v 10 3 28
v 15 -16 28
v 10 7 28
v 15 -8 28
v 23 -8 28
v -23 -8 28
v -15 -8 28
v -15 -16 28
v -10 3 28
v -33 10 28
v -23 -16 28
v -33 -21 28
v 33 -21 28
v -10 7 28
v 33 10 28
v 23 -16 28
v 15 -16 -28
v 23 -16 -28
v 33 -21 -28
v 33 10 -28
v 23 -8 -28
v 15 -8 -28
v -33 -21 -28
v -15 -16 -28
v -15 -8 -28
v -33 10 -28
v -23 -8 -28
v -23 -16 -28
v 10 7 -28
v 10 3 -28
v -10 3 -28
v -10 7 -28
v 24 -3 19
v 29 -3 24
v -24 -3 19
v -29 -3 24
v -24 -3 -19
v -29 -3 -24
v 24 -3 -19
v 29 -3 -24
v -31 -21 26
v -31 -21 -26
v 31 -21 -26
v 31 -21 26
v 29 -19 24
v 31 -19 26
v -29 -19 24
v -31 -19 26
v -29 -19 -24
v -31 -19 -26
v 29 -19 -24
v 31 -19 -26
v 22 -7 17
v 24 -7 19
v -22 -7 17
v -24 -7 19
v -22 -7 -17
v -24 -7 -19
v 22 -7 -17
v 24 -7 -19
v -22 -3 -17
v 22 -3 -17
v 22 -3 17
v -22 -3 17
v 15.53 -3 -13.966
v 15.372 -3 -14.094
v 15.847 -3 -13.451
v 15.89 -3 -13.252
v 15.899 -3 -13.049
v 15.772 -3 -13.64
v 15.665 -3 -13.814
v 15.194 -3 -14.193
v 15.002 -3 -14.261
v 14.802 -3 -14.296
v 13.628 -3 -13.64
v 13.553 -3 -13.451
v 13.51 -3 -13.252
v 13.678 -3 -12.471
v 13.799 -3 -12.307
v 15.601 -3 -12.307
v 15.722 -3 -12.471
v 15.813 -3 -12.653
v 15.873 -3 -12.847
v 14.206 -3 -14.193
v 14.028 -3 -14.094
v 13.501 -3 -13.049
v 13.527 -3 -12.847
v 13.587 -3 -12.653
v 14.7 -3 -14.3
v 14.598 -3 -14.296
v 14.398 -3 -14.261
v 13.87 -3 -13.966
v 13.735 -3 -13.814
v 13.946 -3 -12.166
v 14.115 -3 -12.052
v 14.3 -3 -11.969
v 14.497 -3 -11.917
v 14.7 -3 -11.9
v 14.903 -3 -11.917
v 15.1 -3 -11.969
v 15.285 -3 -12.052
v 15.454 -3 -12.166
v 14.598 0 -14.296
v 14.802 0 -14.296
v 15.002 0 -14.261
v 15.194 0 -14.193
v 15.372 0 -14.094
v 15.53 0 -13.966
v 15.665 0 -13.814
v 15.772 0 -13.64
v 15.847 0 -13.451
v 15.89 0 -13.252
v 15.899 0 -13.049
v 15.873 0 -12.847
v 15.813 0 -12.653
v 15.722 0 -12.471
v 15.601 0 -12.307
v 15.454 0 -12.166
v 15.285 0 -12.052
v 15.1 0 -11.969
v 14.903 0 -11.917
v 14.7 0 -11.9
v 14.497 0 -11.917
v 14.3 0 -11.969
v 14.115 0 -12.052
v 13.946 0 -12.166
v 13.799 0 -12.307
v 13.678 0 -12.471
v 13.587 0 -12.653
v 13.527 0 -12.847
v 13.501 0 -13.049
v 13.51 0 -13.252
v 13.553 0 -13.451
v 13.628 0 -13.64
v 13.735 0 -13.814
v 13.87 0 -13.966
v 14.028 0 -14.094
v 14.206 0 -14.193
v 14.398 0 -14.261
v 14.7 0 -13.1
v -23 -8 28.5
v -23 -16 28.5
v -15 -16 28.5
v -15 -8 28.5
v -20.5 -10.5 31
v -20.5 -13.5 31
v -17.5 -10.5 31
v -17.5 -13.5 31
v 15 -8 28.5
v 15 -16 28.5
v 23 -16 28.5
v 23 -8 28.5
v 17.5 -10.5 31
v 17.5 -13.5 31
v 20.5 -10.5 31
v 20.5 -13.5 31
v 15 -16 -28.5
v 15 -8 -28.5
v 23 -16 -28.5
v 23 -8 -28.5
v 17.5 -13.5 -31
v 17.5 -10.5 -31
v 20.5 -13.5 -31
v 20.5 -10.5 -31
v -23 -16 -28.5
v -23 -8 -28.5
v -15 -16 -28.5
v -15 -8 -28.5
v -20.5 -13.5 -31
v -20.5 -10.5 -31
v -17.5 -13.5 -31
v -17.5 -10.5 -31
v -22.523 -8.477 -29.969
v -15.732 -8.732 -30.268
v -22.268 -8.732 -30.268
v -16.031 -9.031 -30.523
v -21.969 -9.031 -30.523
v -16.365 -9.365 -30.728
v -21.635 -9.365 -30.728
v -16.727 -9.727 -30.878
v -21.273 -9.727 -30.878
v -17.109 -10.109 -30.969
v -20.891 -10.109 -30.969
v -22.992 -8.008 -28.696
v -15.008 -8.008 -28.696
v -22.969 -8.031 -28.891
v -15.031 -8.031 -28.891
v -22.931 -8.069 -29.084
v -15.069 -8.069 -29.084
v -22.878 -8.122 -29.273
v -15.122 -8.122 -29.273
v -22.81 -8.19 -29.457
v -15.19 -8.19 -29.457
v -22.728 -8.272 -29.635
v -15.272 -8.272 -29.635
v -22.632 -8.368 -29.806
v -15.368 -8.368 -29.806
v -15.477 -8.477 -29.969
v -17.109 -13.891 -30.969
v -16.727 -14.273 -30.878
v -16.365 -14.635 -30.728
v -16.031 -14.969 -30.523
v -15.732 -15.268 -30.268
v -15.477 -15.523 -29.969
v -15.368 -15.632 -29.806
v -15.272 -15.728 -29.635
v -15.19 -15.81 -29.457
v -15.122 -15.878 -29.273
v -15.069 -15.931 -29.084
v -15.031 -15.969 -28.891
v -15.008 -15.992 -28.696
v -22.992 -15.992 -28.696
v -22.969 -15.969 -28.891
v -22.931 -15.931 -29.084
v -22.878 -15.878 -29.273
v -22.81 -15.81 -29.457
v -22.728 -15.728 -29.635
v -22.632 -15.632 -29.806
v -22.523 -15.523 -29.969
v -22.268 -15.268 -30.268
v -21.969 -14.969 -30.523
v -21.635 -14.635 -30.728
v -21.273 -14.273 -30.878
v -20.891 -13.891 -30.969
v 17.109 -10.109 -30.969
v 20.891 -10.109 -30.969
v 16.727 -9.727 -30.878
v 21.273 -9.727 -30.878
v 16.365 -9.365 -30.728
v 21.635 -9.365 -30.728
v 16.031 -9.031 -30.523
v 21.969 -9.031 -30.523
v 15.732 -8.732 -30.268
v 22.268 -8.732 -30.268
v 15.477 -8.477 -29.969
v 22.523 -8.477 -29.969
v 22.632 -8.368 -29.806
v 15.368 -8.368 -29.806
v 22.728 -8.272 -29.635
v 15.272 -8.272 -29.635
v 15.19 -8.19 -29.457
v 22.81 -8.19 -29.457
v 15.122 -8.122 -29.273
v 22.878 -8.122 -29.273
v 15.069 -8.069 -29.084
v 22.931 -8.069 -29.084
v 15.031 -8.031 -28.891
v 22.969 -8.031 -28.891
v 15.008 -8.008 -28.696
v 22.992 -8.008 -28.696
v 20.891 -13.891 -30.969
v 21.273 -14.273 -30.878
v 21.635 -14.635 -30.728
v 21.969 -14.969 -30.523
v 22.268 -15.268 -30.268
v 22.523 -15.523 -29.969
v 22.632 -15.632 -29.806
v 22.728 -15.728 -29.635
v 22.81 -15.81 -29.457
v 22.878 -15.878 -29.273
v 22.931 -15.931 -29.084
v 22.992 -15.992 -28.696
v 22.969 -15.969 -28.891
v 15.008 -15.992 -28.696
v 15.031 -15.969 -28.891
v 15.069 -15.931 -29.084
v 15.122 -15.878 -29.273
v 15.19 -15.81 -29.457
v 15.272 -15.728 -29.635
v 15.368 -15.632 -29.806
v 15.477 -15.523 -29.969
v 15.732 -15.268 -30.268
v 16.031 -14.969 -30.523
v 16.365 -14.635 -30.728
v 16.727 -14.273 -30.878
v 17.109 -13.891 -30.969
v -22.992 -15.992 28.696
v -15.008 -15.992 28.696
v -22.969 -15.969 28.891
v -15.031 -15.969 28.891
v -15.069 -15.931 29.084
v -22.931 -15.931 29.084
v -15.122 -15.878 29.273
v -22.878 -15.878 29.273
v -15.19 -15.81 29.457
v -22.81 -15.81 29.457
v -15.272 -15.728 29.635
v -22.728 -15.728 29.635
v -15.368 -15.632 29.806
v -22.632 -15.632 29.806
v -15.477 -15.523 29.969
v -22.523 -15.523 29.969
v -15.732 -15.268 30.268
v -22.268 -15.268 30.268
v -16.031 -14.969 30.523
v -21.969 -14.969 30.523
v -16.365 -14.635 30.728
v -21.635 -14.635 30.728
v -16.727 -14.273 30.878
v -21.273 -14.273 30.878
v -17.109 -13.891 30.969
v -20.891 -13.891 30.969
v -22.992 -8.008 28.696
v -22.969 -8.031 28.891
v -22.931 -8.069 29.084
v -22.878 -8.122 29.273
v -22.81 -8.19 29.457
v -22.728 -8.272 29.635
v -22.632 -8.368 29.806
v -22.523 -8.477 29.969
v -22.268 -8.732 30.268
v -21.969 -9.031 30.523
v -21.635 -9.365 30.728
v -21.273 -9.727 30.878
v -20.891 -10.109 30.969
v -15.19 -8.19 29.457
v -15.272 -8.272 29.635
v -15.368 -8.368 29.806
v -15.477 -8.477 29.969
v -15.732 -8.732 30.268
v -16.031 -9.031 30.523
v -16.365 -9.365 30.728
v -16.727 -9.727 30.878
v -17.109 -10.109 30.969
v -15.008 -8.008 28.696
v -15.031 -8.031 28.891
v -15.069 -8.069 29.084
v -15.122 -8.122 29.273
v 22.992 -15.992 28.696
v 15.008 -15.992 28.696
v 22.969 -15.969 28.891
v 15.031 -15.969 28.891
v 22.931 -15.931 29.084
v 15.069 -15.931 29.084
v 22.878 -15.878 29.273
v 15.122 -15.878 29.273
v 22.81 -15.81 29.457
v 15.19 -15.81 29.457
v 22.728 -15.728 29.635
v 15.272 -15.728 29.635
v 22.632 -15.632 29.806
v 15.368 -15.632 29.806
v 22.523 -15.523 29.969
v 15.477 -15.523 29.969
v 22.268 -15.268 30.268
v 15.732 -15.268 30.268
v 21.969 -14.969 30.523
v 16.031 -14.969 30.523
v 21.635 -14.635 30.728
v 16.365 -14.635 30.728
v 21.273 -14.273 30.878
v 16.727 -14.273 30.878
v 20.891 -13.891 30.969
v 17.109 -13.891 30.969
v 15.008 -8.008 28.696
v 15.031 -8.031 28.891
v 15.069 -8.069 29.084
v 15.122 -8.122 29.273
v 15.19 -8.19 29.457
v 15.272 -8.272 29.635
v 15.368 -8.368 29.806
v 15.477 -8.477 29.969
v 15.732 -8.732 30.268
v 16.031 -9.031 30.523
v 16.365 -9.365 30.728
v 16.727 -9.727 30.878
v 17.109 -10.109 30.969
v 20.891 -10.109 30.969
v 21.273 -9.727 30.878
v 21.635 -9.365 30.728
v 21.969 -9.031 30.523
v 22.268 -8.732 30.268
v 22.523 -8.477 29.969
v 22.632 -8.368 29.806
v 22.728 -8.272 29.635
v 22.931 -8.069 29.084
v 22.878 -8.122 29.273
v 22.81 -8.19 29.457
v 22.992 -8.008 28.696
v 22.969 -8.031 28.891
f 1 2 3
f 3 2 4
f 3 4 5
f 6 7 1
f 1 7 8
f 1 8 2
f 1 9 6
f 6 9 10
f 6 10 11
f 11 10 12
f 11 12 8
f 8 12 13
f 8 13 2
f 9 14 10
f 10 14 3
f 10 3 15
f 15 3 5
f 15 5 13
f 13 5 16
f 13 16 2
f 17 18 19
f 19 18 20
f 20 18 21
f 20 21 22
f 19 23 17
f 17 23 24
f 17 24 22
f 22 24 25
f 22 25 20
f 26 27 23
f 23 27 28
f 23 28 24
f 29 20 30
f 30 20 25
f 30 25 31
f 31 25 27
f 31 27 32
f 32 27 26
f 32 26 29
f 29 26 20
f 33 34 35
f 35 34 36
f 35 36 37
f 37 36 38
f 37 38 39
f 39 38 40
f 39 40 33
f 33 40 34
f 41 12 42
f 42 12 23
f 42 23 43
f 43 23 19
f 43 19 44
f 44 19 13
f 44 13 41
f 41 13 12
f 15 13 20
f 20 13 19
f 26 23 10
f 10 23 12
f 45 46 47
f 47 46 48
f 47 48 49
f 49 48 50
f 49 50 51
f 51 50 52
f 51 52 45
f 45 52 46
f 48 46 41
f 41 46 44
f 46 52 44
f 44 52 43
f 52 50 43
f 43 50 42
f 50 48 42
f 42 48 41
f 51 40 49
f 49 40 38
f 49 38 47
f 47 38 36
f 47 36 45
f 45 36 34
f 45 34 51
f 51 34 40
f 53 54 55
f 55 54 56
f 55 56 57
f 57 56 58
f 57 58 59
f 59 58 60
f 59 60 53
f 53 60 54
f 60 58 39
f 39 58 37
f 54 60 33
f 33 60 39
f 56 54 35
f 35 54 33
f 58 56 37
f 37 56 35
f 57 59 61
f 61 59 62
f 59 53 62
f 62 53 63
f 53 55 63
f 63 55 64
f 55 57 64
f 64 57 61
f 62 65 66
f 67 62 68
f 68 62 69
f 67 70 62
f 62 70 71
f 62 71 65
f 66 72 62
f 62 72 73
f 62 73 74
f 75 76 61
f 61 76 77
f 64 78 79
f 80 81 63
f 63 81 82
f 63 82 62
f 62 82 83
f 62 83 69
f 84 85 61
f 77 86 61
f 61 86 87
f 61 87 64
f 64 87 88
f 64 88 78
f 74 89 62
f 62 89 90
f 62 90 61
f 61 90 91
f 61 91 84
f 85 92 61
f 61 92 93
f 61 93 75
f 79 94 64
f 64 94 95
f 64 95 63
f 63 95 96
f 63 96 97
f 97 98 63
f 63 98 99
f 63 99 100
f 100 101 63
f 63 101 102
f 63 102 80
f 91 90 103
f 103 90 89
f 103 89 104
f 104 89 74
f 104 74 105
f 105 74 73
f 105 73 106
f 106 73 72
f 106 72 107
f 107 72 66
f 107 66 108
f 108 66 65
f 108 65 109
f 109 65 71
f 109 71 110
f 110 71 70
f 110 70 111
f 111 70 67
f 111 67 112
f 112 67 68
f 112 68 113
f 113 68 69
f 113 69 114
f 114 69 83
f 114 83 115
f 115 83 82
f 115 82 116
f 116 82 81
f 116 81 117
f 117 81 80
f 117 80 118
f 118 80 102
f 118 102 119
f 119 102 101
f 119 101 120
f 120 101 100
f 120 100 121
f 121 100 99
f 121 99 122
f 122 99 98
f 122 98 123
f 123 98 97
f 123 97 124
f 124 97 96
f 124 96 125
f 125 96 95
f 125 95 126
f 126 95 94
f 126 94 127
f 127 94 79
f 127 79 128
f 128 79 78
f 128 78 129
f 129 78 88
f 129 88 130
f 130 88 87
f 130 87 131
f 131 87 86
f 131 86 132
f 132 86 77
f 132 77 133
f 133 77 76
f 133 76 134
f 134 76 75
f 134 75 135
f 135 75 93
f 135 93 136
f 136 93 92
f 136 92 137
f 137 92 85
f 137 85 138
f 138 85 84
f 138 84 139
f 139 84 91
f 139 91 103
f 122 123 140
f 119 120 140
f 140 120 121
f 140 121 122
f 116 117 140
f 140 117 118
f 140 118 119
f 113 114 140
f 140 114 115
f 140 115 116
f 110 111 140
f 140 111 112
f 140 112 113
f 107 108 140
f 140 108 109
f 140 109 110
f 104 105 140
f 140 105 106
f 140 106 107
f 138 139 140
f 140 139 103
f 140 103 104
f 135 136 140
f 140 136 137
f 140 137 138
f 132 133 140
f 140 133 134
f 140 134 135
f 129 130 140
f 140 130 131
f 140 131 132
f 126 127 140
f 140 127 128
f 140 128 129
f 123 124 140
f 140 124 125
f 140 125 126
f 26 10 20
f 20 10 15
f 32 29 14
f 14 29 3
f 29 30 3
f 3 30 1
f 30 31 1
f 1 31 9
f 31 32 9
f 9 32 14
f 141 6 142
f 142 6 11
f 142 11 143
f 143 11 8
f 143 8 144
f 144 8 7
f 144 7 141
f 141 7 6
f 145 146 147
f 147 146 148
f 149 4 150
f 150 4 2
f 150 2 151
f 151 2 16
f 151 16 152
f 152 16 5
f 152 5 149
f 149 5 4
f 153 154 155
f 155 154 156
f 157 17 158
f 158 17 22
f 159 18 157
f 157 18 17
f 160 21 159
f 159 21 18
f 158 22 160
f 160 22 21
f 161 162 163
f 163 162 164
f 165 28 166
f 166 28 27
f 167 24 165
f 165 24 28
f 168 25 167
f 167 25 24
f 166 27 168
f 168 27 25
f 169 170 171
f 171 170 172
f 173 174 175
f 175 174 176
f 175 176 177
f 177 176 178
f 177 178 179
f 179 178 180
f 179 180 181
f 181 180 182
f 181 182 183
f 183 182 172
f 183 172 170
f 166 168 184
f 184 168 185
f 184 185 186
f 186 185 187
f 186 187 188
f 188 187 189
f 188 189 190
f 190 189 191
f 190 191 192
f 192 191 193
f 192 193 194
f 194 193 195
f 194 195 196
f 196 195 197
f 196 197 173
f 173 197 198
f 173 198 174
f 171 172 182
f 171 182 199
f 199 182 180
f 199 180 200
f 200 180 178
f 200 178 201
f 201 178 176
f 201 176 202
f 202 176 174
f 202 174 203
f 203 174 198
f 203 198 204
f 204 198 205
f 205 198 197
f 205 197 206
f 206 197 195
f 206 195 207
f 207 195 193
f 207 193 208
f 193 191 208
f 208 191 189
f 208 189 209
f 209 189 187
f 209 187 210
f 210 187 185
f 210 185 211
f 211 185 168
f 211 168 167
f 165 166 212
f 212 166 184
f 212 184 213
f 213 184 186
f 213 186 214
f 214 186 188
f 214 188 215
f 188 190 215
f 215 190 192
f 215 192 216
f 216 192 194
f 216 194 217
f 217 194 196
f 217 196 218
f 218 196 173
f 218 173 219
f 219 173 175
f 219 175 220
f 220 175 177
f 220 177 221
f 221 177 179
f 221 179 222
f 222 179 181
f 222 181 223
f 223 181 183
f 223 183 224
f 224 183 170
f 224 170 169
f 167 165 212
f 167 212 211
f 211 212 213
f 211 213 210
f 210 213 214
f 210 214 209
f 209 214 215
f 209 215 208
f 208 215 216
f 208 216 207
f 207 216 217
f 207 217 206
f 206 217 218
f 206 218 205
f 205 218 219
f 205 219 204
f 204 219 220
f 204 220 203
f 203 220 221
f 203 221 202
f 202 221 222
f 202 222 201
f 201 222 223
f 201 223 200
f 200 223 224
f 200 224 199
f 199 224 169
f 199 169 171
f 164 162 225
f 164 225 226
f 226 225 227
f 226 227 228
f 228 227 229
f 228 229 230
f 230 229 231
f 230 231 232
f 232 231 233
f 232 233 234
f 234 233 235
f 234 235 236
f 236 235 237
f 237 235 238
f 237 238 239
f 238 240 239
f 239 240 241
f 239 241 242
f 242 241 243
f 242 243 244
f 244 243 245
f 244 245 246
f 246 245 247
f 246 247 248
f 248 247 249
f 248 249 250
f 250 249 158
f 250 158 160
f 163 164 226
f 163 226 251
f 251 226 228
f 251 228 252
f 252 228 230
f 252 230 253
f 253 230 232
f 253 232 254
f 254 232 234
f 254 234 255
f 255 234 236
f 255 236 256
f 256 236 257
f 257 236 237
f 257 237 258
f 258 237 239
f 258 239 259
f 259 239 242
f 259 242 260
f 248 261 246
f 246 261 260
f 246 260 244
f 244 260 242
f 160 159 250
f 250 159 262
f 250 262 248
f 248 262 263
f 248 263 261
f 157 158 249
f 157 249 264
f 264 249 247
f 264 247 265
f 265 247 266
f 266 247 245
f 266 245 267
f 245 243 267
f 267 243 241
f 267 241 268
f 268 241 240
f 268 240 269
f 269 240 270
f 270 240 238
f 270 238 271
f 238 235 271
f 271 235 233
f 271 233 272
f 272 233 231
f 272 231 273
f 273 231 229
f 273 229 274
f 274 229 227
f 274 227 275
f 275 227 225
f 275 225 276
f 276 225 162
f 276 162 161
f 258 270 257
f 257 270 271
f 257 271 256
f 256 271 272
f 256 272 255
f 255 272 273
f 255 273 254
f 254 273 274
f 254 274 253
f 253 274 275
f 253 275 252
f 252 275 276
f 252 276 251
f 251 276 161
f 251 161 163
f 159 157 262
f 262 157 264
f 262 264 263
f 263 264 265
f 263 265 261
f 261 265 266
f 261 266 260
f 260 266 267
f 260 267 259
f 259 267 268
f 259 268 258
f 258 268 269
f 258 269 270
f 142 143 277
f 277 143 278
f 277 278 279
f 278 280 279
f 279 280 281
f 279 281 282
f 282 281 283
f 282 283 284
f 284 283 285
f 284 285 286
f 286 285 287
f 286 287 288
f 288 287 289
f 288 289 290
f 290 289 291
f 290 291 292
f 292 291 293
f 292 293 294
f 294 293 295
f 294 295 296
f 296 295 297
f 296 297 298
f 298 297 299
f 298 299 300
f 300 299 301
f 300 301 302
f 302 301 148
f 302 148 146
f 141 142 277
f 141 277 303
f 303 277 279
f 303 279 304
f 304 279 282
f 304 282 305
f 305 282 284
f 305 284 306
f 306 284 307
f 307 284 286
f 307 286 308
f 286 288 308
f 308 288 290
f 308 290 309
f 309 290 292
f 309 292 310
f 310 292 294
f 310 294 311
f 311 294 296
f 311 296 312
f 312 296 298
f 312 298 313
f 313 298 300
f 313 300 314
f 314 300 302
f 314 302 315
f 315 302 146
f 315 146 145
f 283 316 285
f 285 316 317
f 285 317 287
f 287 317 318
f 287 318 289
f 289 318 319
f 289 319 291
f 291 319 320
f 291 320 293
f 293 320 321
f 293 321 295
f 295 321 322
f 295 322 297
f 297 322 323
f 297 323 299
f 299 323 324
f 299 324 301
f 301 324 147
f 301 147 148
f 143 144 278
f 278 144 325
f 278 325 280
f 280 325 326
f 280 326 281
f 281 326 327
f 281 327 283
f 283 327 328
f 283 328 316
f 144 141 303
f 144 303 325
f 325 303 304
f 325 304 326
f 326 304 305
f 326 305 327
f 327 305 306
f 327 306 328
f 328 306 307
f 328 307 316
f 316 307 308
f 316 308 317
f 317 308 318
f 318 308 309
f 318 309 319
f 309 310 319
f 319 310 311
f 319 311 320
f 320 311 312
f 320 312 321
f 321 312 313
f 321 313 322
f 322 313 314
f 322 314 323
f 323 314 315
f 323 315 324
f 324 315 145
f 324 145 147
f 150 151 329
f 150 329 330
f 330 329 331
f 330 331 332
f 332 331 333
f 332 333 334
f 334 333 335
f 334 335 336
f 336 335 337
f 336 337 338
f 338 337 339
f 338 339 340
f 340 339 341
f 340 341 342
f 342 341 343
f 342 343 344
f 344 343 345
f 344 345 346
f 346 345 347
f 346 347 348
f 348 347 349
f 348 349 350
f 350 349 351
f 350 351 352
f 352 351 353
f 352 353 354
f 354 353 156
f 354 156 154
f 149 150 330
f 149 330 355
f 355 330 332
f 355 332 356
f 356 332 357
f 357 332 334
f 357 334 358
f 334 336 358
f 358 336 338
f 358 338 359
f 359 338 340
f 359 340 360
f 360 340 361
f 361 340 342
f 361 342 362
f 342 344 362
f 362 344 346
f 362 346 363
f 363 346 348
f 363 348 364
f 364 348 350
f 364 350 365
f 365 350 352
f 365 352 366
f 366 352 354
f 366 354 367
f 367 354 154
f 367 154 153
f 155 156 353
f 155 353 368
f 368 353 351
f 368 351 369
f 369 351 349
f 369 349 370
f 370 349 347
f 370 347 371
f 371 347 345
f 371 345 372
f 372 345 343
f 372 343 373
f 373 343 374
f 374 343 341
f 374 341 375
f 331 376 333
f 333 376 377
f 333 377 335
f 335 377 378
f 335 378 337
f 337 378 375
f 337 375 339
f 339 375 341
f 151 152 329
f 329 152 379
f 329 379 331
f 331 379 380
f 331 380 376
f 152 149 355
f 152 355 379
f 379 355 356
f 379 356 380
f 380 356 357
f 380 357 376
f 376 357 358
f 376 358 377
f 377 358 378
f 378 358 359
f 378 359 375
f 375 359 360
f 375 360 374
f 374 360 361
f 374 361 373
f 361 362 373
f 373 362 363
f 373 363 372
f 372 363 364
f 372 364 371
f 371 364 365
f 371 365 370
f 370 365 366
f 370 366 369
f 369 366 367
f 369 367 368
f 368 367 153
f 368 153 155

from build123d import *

# Parameters (mm, degrees)
SKETCH1_W            = 66
SKETCH1_H            = 56
BASE_DEPTH           = 3
SKETCH4_W            = 66
SKETCH4_H            = 56
SKETCH4_W_2          = 58
SKETCH4_H_2          = 48
WALL1_DEPTH          = 21
WALL2_START          = -21
SKETCH8_W            = 62
SKETCH8_H            = 52
SKETCH8_W_2          = 58
SKETCH8_H_2          = 48
WALL2_DEPTH          = 2
PCBWALL_START        = -3
SKETCH9_W            = 48
SKETCH9_H            = 38
SKETCH9_W_2          = 44
SKETCH9_H_2          = 34
PCBWALL_DEPTH        = 4
SKETCH10_R           = 1.2
MOUNTING_HOLE_DEPTH  = 4
SKETCH11_W           = 66
SKETCH11_H           = 56
EXTENDED_BASE_DEPTH  = 10
HEAD_START           = 28
SKETCH12_W           = 20
SKETCH12_H           = 4
HEAD_BAND_SLOT_DEPTH = 77.104053883
CLIPS_START          = 28
SKETCH13_W           = 8
SKETCH13_H           = 8
CLIPS_DEPTH          = 3
FILLET2_R            = 2.5


with BuildPart() as part:
    # Sketch1 → Base (new body)
    with BuildSketch(Plane(origin=(0, 0, 0), x_dir=(1, 0, 0), z_dir=(0, 1, 0))):
        Rectangle(SKETCH1_W, SKETCH1_H)
    extrude(amount=-BASE_DEPTH)

    # Sketch4 → Wall1 (add)
    with BuildSketch(Plane(origin=(0, 0, 0), x_dir=(1, 0, 0), z_dir=(0, 1, 0))):
        Rectangle(SKETCH4_W, SKETCH4_H)
        Rectangle(SKETCH4_W_2, SKETCH4_H_2, mode=Mode.SUBTRACT)
    extrude(amount=-WALL1_DEPTH)

    # Sketch8 → Wall2 (cut)
    with BuildSketch(Plane(origin=(0, 0, 0), x_dir=(1, 0, 0), z_dir=(0, 1, 0)).offset(WALL2_START)):
        Rectangle(SKETCH8_W, SKETCH8_H)
        Rectangle(SKETCH8_W_2, SKETCH8_H_2, mode=Mode.SUBTRACT)
    extrude(amount=WALL2_DEPTH, mode=Mode.SUBTRACT)

    # Sketch9 → PCBWall (add)
    with BuildSketch(Plane(origin=(0, 0, 0), x_dir=(1, 0, 0), z_dir=(0, 1, 0)).offset(PCBWALL_START)):
        Rectangle(SKETCH9_W, SKETCH9_H)
        Rectangle(SKETCH9_W_2, SKETCH9_H_2, mode=Mode.SUBTRACT)
    extrude(amount=-PCBWALL_DEPTH)

    # Sketch10 → Mounting hole (cut)
    with BuildSketch(Plane(origin=(0, 0, 0), x_dir=(1, 0, 0), z_dir=(0, 1, 0))):
        with Locations(Location((14.7, 13.1, 0), (0, 0, 270))):
            Circle(SKETCH10_R)
    extrude(amount=-MOUNTING_HOLE_DEPTH, mode=Mode.SUBTRACT)

    # Sketch11 → Extended Base (add)
    with BuildSketch(Plane(origin=(0, 0, 0), x_dir=(1, 0, 0), z_dir=(0, 1, 0))):
        Rectangle(SKETCH11_W, SKETCH11_H)
    extrude(amount=EXTENDED_BASE_DEPTH)

    # Sketch12 → Head Band Slot (cut, through all)
    with BuildSketch(Plane.XY.offset(HEAD_START)):
        with Locations((0, 5)):
            Rectangle(SKETCH12_W, SKETCH12_H)
    extrude(amount=-HEAD_BAND_SLOT_DEPTH, mode=Mode.SUBTRACT)

    # Sketch13 → Clips (add)
    with BuildSketch(Plane.XY.offset(CLIPS_START)):
        with Locations((-19, -12)):
            Rectangle(SKETCH13_W, SKETCH13_H)
        with Locations((19, -12)):
            Rectangle(SKETCH13_W, SKETCH13_H)
    clips = extrude(amount=CLIPS_DEPTH)

    # Clips2: Clips across plane
    add(clips.mirror(Plane.XY))

    # Fillet2
    fillet2_edges = [part.edges().sort_by_distance(p)[0] for p in [
        (-23, -12, 31),
        (-19, -16, 31),
        (-15, -12, 31),
        (-19, -8, 31),
        (15, -12, 31),
        (19, -16, 31),
        (23, -12, 31),
        (19, -8, 31),
        (15, -12, -31),
        (19, -8, -31),
        (23, -12, -31),
        (19, -16, -31),
        (-23, -12, -31),
        (-19, -8, -31),
        (-15, -12, -31),
        (-19, -16, -31),
    ]]
    fillet(fillet2_edges, radius=FILLET2_R)


solid = part.part
